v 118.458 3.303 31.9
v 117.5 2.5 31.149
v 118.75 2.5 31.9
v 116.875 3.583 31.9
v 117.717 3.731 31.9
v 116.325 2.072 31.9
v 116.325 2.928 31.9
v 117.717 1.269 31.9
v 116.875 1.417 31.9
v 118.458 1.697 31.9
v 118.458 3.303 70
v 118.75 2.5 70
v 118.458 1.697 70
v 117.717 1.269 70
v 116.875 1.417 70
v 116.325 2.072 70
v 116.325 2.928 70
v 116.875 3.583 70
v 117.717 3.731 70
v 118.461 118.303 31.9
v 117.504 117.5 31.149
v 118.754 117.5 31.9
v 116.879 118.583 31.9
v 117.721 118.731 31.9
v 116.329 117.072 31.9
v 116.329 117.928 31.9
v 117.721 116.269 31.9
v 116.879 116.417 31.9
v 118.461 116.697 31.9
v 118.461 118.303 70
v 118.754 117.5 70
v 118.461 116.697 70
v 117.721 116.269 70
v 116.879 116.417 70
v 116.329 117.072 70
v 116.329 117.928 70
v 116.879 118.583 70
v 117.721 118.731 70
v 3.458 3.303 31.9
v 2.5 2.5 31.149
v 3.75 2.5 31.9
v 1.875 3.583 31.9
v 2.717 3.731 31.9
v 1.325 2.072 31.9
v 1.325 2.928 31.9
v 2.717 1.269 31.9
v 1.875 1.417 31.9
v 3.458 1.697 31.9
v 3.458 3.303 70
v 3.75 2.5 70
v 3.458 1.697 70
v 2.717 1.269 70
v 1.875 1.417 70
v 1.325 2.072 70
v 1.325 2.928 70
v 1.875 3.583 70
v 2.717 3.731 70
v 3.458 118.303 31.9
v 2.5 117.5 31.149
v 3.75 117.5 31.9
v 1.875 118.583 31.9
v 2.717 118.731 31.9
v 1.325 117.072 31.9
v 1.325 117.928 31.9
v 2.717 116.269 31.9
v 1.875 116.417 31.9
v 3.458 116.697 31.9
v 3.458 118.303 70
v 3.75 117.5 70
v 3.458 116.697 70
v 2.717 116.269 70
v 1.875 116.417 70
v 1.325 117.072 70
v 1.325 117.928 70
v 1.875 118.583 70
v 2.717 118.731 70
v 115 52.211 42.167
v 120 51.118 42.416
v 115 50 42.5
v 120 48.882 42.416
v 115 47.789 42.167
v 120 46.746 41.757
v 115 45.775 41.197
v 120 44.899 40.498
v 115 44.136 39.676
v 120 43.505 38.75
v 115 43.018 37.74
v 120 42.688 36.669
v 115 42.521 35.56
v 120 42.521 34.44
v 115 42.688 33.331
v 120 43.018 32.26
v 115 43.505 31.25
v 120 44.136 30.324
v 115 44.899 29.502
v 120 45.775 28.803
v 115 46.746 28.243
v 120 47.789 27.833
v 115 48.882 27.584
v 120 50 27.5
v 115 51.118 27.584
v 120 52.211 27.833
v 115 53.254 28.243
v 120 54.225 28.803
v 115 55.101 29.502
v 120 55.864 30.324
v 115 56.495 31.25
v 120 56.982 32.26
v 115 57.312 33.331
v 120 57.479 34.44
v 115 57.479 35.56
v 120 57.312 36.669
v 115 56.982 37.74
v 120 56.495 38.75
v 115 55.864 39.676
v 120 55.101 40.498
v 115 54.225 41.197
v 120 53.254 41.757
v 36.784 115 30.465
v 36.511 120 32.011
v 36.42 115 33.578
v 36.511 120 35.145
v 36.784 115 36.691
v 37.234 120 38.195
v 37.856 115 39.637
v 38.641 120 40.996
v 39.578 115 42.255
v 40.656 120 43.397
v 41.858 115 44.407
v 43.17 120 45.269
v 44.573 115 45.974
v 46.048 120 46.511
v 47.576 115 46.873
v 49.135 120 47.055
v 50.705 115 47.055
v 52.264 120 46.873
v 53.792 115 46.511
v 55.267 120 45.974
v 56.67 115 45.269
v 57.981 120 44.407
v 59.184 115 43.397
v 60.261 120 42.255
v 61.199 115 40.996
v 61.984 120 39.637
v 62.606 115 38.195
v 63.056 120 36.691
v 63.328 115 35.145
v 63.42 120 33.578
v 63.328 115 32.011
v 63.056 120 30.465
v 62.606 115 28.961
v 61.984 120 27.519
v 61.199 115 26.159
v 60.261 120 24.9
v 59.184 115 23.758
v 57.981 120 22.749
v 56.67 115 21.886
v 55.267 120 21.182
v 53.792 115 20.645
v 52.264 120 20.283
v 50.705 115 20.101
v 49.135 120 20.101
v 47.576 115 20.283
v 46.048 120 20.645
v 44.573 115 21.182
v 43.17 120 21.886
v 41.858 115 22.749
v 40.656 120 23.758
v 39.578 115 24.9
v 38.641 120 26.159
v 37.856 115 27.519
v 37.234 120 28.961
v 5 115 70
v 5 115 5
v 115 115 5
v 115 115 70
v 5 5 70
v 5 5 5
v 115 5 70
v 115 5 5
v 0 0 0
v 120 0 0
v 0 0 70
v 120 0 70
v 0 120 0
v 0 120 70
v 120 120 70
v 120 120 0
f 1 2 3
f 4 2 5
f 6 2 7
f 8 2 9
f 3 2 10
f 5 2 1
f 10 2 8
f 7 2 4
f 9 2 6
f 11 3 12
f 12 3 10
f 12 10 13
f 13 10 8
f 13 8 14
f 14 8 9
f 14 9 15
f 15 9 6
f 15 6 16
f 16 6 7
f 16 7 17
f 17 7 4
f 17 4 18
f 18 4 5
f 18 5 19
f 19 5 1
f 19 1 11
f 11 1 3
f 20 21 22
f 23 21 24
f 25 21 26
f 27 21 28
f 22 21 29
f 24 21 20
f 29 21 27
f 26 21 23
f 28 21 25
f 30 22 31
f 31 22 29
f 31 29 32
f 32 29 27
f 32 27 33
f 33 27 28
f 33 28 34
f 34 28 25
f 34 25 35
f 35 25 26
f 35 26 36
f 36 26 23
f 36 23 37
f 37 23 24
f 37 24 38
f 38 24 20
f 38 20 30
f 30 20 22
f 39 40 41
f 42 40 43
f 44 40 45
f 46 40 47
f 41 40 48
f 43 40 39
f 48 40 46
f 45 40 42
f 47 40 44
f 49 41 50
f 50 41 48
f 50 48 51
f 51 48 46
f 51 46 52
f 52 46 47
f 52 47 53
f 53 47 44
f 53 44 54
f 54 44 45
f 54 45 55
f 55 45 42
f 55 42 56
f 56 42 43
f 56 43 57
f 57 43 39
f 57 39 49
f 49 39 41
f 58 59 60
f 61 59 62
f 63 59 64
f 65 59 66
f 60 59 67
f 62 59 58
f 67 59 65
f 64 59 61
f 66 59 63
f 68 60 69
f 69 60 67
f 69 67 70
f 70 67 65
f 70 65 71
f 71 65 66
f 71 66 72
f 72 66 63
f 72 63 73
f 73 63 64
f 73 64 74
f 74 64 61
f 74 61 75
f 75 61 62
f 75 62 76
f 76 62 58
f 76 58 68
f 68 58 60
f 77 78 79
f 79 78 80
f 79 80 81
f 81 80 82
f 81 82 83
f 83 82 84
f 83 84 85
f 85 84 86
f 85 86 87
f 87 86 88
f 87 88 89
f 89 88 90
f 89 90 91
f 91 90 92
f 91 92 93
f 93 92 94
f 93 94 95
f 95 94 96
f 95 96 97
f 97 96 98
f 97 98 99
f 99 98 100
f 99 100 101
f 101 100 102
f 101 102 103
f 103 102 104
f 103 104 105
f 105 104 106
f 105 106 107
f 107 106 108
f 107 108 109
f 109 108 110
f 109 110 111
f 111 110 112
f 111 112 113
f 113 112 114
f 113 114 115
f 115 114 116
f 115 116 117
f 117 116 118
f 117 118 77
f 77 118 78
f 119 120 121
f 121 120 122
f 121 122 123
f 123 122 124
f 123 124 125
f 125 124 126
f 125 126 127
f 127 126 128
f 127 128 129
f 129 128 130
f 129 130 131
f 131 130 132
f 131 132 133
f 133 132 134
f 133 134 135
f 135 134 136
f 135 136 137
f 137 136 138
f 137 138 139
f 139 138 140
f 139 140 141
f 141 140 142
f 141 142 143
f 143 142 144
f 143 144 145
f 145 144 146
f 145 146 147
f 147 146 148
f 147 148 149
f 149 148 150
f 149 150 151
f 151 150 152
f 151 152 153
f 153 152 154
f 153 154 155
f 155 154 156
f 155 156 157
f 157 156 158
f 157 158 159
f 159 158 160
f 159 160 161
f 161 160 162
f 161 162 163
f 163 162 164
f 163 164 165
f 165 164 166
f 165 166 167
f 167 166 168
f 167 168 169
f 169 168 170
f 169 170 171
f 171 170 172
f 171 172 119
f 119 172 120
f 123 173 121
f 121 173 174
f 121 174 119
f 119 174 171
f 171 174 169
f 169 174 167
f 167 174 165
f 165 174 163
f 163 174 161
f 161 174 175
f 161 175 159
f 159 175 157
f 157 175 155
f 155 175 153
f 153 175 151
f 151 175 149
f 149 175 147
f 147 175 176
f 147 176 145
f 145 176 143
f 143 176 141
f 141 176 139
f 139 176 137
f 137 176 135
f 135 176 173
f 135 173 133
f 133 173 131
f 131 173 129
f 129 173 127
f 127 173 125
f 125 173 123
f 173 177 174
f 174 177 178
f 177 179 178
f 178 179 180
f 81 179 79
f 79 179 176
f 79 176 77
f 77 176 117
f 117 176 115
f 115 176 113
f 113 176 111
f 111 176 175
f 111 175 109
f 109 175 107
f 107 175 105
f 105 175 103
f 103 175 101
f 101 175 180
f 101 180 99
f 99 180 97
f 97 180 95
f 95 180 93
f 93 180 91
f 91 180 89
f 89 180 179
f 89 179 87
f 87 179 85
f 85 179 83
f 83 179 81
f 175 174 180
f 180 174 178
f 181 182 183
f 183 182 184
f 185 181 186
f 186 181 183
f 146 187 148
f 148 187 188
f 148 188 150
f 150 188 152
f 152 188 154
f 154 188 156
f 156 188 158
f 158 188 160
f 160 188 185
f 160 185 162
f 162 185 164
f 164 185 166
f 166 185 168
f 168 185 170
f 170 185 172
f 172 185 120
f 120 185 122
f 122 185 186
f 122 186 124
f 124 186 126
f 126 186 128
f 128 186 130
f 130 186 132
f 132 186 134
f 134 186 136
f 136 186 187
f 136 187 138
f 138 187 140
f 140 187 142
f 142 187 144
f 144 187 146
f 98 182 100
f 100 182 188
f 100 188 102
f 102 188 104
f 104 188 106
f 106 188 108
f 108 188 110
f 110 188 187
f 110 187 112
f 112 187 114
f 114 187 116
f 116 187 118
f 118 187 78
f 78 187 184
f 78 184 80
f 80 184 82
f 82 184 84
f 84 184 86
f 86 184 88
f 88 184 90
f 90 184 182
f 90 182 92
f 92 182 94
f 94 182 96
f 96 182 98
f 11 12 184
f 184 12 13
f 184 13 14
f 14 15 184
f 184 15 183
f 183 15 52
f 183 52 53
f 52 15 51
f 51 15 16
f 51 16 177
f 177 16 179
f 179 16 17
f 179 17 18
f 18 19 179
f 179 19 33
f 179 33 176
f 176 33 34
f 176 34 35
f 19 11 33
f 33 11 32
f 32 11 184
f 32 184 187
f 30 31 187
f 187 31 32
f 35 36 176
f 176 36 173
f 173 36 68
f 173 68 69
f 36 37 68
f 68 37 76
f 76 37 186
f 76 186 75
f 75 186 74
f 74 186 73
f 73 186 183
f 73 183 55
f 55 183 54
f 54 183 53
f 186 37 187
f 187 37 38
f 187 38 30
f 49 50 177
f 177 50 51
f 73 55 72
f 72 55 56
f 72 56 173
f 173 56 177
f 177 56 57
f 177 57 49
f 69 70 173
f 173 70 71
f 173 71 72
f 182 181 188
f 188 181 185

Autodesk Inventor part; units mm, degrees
ref_plane "YZ Plane" through (0, 0, 0) normal (1, 0, 0) x (0, 1, 0)
ref_plane "XZ Plane" through (0, 0, 0) normal (0, 1, 0) x (-1, 0, 0)
ref_plane "XY Plane" through (0, 0, 0) normal (0, 0, 1) x (1, 0, 0)
sketch "Sketch18" plane through (0, 0, 0) normal (0, 0, 1) x (1, 0, 0)
  line L0 (0, 0) -> (120, 0)
  line L1 (120, 0) -> (120, 120)
  line L2 (120, 120) -> (0, 120)
  line L3 (0, 120) -> (0, 0)
  dimension "d90" = 120
  dimension "d91" = 120
  dimension "d92" = 120
  dimension "d93" = 120
extrude "Extrusion4" add sketch "Sketch18" along normal blind 70
sketch "Sketch20" plane through (0, 0, 70) normal (0, 0, 1) x (1, 0, 0)
  point P0 (0, 0)
sketch "Sketch21" plane through (0, 0, 70) normal (0, 0, 1) x (1, 0, 0)
  line L0 (120, 120) -> (0, 120) projected
  line L1 (0, 120) -> (0, 115)
  line L2 (0, 120) -> (0, 0) projected
  line L3 (0, 115) -> (115, 115)
  line L4 (115, 115) -> (115, 5)
  line L5 (115, 5) -> (5, 5)
  line L6 (5, 5) -> (5, 115)
  dimension "d102" = 5
  dimension "d103" = 115
  dimension "d104" = 110
  dimension "d105" = 110
  dimension "d106" = 110
sketch "Sketch23" plane through (0, 0, 70) normal (0, 0, 1) x (1, 0, 0)
  line L0 (5.0371, 115.0535) -> (115.0371, 115.0535)
  line L1 (115.0371, 115.0535) -> (115.0371, 5.0535)
  line L2 (115.0371, 5.0535) -> (5.0371, 5.0535)
  line L3 (5.0371, 5.0535) -> (5.0371, 115.0535)
  line L4 (0, 0) -> (2.5, 0)
  line L5 (0, 0) -> (120, 0) projected
  line L6 (2.5, 0) -> (2.5, 2.5)
  circle A0 centre (2.5, 2.5) radius 1.25
  dimension "d108" = 110
  dimension "d109" = 110
  dimension "d110" = 110
  dimension "d143" = 2.5
  dimension "d144" = 2.5
  dimension "d145" = 2.5
extrude "Extrusion5" cut sketch "Sketch21" against normal blind 65
sketch "Sketch24" plane through (5, 115, 70) normal (0, -1, 0) x (1, 0, 0)
  point P0 (-5, -70)
sketch "Sketch25" plane through (0, 120, 0) normal (0, 1, 0) x (1, 0, 0)
  line L0 (0, 0) -> (120, 0) projected
  line L1 (0, 0) -> (50, 0)
  line L2 (50, 0) -> (50, -33.5)
  dimension "d113" = 50
  dimension "d114" = 33.5
sketch "Sketch26" plane through (0, 120, 0) normal (0, 1, 0) x (1, 0, 0)
  circle A0 centre (49.9198, -33.5778) radius 13.5
  point P0 (0, 0)
  dimension "d116" = 27
hole "Hole7" at (49.9198, 120, 33.5778) direction (0, -1, 0) diameter 27 depth 30
sketch "Sketch27" plane through (120, 0, 0) normal (1, 0, 0) x (0, 0, -1)
  line L0 (0, 0) -> (0, 50)
  line L1 (0, 120) -> (0, 0) projected
  line L2 (0, 50) -> (-35, 50)
  circle A0 centre (-35, 50) radius 7.5
  dimension "d124" = 50
  dimension "d125" = 35
  dimension "d126" = 15
hole "Hole8" at (120, 50, 35) direction (-1, 0, 0) diameter 15 depth 30
sketch "Sketch28" plane through (0, 0, 70) normal (0, 0, 1) x (1, 0, 0)
  line L0 (0, 120) -> (0, 0) projected
  line L1 (0, 120) -> (2.5, 120)
  line L2 (120, 120) -> (0, 120) projected
  line L3 (2.5, 120) -> (2.5, 117.5)
  dimension "d134" = 2.5
  dimension "d135" = 2.5
hole "Hole9" at (2.5, 117.5, 70) direction (0, 0, -1) diameter 2.5 depth 38.1 tip angle 118
hole "Hole10" at (2.5, 2.5, 70) direction (0, 0, -1) diameter 2.5 depth 38.1 tip angle 118
sketch "Sketch29" plane through (115, 5, 70) normal (-1, 0, 0) x (0, 0, 1)
  point P0 (-70, -5)
sketch "Sketch30" plane through (0, 0, 70) normal (0, 0, 1) x (1, 0, 0)
  line L0 (120, 120) -> (0, 120) projected
  line L1 (120, 120) -> (117.5, 120)
  line L2 (117.5, 120) -> (120, 120)
  point P0 (0, 0)
  dimension "d153" = 2.5
  dimension "d154" = 2.5
sketch "Sketch31" plane through (0, 0, 70) normal (0, 0, 1) x (1, 0, 0)
  line L0 (120, 120) -> (0, 120) projected
  line L1 (117.5038, 120) -> (120.0038, 120)
  line L2 (120.0038, 120) -> (120.0038, 117.5)
  line L3 (120.0038, 117.5) -> (117.5038, 117.5)
  point P0 (0, 0)
  dimension "d155" = 2.5
  dimension "d156" = 2.5
  dimension "d157" = 2.5
hole "Hole11" at (117.5038, 117.5, 70) direction (0, 0, -1) diameter 2.5 depth 38.1 tip angle 118
sketch "Sketch32" plane through (0, 0, 70) normal (0, 0, 1) x (1, 0, 0)
  line L0 (0, 0) -> (120, 0) projected
  line L1 (120, 0) -> (120, 2.5)
  line L2 (120, 0) -> (120, 120) projected
  line L3 (120, 2.5) -> (117.5, 2.5)
  dimension "d165" = 2.5
  dimension "d166" = 2.5
hole "Hole12" at (117.5, 2.5, 70) direction (0, 0, -1) diameter 2.5 depth 38.1 tip angle 118
properties part number "3d_enclosure_2_19_1"
